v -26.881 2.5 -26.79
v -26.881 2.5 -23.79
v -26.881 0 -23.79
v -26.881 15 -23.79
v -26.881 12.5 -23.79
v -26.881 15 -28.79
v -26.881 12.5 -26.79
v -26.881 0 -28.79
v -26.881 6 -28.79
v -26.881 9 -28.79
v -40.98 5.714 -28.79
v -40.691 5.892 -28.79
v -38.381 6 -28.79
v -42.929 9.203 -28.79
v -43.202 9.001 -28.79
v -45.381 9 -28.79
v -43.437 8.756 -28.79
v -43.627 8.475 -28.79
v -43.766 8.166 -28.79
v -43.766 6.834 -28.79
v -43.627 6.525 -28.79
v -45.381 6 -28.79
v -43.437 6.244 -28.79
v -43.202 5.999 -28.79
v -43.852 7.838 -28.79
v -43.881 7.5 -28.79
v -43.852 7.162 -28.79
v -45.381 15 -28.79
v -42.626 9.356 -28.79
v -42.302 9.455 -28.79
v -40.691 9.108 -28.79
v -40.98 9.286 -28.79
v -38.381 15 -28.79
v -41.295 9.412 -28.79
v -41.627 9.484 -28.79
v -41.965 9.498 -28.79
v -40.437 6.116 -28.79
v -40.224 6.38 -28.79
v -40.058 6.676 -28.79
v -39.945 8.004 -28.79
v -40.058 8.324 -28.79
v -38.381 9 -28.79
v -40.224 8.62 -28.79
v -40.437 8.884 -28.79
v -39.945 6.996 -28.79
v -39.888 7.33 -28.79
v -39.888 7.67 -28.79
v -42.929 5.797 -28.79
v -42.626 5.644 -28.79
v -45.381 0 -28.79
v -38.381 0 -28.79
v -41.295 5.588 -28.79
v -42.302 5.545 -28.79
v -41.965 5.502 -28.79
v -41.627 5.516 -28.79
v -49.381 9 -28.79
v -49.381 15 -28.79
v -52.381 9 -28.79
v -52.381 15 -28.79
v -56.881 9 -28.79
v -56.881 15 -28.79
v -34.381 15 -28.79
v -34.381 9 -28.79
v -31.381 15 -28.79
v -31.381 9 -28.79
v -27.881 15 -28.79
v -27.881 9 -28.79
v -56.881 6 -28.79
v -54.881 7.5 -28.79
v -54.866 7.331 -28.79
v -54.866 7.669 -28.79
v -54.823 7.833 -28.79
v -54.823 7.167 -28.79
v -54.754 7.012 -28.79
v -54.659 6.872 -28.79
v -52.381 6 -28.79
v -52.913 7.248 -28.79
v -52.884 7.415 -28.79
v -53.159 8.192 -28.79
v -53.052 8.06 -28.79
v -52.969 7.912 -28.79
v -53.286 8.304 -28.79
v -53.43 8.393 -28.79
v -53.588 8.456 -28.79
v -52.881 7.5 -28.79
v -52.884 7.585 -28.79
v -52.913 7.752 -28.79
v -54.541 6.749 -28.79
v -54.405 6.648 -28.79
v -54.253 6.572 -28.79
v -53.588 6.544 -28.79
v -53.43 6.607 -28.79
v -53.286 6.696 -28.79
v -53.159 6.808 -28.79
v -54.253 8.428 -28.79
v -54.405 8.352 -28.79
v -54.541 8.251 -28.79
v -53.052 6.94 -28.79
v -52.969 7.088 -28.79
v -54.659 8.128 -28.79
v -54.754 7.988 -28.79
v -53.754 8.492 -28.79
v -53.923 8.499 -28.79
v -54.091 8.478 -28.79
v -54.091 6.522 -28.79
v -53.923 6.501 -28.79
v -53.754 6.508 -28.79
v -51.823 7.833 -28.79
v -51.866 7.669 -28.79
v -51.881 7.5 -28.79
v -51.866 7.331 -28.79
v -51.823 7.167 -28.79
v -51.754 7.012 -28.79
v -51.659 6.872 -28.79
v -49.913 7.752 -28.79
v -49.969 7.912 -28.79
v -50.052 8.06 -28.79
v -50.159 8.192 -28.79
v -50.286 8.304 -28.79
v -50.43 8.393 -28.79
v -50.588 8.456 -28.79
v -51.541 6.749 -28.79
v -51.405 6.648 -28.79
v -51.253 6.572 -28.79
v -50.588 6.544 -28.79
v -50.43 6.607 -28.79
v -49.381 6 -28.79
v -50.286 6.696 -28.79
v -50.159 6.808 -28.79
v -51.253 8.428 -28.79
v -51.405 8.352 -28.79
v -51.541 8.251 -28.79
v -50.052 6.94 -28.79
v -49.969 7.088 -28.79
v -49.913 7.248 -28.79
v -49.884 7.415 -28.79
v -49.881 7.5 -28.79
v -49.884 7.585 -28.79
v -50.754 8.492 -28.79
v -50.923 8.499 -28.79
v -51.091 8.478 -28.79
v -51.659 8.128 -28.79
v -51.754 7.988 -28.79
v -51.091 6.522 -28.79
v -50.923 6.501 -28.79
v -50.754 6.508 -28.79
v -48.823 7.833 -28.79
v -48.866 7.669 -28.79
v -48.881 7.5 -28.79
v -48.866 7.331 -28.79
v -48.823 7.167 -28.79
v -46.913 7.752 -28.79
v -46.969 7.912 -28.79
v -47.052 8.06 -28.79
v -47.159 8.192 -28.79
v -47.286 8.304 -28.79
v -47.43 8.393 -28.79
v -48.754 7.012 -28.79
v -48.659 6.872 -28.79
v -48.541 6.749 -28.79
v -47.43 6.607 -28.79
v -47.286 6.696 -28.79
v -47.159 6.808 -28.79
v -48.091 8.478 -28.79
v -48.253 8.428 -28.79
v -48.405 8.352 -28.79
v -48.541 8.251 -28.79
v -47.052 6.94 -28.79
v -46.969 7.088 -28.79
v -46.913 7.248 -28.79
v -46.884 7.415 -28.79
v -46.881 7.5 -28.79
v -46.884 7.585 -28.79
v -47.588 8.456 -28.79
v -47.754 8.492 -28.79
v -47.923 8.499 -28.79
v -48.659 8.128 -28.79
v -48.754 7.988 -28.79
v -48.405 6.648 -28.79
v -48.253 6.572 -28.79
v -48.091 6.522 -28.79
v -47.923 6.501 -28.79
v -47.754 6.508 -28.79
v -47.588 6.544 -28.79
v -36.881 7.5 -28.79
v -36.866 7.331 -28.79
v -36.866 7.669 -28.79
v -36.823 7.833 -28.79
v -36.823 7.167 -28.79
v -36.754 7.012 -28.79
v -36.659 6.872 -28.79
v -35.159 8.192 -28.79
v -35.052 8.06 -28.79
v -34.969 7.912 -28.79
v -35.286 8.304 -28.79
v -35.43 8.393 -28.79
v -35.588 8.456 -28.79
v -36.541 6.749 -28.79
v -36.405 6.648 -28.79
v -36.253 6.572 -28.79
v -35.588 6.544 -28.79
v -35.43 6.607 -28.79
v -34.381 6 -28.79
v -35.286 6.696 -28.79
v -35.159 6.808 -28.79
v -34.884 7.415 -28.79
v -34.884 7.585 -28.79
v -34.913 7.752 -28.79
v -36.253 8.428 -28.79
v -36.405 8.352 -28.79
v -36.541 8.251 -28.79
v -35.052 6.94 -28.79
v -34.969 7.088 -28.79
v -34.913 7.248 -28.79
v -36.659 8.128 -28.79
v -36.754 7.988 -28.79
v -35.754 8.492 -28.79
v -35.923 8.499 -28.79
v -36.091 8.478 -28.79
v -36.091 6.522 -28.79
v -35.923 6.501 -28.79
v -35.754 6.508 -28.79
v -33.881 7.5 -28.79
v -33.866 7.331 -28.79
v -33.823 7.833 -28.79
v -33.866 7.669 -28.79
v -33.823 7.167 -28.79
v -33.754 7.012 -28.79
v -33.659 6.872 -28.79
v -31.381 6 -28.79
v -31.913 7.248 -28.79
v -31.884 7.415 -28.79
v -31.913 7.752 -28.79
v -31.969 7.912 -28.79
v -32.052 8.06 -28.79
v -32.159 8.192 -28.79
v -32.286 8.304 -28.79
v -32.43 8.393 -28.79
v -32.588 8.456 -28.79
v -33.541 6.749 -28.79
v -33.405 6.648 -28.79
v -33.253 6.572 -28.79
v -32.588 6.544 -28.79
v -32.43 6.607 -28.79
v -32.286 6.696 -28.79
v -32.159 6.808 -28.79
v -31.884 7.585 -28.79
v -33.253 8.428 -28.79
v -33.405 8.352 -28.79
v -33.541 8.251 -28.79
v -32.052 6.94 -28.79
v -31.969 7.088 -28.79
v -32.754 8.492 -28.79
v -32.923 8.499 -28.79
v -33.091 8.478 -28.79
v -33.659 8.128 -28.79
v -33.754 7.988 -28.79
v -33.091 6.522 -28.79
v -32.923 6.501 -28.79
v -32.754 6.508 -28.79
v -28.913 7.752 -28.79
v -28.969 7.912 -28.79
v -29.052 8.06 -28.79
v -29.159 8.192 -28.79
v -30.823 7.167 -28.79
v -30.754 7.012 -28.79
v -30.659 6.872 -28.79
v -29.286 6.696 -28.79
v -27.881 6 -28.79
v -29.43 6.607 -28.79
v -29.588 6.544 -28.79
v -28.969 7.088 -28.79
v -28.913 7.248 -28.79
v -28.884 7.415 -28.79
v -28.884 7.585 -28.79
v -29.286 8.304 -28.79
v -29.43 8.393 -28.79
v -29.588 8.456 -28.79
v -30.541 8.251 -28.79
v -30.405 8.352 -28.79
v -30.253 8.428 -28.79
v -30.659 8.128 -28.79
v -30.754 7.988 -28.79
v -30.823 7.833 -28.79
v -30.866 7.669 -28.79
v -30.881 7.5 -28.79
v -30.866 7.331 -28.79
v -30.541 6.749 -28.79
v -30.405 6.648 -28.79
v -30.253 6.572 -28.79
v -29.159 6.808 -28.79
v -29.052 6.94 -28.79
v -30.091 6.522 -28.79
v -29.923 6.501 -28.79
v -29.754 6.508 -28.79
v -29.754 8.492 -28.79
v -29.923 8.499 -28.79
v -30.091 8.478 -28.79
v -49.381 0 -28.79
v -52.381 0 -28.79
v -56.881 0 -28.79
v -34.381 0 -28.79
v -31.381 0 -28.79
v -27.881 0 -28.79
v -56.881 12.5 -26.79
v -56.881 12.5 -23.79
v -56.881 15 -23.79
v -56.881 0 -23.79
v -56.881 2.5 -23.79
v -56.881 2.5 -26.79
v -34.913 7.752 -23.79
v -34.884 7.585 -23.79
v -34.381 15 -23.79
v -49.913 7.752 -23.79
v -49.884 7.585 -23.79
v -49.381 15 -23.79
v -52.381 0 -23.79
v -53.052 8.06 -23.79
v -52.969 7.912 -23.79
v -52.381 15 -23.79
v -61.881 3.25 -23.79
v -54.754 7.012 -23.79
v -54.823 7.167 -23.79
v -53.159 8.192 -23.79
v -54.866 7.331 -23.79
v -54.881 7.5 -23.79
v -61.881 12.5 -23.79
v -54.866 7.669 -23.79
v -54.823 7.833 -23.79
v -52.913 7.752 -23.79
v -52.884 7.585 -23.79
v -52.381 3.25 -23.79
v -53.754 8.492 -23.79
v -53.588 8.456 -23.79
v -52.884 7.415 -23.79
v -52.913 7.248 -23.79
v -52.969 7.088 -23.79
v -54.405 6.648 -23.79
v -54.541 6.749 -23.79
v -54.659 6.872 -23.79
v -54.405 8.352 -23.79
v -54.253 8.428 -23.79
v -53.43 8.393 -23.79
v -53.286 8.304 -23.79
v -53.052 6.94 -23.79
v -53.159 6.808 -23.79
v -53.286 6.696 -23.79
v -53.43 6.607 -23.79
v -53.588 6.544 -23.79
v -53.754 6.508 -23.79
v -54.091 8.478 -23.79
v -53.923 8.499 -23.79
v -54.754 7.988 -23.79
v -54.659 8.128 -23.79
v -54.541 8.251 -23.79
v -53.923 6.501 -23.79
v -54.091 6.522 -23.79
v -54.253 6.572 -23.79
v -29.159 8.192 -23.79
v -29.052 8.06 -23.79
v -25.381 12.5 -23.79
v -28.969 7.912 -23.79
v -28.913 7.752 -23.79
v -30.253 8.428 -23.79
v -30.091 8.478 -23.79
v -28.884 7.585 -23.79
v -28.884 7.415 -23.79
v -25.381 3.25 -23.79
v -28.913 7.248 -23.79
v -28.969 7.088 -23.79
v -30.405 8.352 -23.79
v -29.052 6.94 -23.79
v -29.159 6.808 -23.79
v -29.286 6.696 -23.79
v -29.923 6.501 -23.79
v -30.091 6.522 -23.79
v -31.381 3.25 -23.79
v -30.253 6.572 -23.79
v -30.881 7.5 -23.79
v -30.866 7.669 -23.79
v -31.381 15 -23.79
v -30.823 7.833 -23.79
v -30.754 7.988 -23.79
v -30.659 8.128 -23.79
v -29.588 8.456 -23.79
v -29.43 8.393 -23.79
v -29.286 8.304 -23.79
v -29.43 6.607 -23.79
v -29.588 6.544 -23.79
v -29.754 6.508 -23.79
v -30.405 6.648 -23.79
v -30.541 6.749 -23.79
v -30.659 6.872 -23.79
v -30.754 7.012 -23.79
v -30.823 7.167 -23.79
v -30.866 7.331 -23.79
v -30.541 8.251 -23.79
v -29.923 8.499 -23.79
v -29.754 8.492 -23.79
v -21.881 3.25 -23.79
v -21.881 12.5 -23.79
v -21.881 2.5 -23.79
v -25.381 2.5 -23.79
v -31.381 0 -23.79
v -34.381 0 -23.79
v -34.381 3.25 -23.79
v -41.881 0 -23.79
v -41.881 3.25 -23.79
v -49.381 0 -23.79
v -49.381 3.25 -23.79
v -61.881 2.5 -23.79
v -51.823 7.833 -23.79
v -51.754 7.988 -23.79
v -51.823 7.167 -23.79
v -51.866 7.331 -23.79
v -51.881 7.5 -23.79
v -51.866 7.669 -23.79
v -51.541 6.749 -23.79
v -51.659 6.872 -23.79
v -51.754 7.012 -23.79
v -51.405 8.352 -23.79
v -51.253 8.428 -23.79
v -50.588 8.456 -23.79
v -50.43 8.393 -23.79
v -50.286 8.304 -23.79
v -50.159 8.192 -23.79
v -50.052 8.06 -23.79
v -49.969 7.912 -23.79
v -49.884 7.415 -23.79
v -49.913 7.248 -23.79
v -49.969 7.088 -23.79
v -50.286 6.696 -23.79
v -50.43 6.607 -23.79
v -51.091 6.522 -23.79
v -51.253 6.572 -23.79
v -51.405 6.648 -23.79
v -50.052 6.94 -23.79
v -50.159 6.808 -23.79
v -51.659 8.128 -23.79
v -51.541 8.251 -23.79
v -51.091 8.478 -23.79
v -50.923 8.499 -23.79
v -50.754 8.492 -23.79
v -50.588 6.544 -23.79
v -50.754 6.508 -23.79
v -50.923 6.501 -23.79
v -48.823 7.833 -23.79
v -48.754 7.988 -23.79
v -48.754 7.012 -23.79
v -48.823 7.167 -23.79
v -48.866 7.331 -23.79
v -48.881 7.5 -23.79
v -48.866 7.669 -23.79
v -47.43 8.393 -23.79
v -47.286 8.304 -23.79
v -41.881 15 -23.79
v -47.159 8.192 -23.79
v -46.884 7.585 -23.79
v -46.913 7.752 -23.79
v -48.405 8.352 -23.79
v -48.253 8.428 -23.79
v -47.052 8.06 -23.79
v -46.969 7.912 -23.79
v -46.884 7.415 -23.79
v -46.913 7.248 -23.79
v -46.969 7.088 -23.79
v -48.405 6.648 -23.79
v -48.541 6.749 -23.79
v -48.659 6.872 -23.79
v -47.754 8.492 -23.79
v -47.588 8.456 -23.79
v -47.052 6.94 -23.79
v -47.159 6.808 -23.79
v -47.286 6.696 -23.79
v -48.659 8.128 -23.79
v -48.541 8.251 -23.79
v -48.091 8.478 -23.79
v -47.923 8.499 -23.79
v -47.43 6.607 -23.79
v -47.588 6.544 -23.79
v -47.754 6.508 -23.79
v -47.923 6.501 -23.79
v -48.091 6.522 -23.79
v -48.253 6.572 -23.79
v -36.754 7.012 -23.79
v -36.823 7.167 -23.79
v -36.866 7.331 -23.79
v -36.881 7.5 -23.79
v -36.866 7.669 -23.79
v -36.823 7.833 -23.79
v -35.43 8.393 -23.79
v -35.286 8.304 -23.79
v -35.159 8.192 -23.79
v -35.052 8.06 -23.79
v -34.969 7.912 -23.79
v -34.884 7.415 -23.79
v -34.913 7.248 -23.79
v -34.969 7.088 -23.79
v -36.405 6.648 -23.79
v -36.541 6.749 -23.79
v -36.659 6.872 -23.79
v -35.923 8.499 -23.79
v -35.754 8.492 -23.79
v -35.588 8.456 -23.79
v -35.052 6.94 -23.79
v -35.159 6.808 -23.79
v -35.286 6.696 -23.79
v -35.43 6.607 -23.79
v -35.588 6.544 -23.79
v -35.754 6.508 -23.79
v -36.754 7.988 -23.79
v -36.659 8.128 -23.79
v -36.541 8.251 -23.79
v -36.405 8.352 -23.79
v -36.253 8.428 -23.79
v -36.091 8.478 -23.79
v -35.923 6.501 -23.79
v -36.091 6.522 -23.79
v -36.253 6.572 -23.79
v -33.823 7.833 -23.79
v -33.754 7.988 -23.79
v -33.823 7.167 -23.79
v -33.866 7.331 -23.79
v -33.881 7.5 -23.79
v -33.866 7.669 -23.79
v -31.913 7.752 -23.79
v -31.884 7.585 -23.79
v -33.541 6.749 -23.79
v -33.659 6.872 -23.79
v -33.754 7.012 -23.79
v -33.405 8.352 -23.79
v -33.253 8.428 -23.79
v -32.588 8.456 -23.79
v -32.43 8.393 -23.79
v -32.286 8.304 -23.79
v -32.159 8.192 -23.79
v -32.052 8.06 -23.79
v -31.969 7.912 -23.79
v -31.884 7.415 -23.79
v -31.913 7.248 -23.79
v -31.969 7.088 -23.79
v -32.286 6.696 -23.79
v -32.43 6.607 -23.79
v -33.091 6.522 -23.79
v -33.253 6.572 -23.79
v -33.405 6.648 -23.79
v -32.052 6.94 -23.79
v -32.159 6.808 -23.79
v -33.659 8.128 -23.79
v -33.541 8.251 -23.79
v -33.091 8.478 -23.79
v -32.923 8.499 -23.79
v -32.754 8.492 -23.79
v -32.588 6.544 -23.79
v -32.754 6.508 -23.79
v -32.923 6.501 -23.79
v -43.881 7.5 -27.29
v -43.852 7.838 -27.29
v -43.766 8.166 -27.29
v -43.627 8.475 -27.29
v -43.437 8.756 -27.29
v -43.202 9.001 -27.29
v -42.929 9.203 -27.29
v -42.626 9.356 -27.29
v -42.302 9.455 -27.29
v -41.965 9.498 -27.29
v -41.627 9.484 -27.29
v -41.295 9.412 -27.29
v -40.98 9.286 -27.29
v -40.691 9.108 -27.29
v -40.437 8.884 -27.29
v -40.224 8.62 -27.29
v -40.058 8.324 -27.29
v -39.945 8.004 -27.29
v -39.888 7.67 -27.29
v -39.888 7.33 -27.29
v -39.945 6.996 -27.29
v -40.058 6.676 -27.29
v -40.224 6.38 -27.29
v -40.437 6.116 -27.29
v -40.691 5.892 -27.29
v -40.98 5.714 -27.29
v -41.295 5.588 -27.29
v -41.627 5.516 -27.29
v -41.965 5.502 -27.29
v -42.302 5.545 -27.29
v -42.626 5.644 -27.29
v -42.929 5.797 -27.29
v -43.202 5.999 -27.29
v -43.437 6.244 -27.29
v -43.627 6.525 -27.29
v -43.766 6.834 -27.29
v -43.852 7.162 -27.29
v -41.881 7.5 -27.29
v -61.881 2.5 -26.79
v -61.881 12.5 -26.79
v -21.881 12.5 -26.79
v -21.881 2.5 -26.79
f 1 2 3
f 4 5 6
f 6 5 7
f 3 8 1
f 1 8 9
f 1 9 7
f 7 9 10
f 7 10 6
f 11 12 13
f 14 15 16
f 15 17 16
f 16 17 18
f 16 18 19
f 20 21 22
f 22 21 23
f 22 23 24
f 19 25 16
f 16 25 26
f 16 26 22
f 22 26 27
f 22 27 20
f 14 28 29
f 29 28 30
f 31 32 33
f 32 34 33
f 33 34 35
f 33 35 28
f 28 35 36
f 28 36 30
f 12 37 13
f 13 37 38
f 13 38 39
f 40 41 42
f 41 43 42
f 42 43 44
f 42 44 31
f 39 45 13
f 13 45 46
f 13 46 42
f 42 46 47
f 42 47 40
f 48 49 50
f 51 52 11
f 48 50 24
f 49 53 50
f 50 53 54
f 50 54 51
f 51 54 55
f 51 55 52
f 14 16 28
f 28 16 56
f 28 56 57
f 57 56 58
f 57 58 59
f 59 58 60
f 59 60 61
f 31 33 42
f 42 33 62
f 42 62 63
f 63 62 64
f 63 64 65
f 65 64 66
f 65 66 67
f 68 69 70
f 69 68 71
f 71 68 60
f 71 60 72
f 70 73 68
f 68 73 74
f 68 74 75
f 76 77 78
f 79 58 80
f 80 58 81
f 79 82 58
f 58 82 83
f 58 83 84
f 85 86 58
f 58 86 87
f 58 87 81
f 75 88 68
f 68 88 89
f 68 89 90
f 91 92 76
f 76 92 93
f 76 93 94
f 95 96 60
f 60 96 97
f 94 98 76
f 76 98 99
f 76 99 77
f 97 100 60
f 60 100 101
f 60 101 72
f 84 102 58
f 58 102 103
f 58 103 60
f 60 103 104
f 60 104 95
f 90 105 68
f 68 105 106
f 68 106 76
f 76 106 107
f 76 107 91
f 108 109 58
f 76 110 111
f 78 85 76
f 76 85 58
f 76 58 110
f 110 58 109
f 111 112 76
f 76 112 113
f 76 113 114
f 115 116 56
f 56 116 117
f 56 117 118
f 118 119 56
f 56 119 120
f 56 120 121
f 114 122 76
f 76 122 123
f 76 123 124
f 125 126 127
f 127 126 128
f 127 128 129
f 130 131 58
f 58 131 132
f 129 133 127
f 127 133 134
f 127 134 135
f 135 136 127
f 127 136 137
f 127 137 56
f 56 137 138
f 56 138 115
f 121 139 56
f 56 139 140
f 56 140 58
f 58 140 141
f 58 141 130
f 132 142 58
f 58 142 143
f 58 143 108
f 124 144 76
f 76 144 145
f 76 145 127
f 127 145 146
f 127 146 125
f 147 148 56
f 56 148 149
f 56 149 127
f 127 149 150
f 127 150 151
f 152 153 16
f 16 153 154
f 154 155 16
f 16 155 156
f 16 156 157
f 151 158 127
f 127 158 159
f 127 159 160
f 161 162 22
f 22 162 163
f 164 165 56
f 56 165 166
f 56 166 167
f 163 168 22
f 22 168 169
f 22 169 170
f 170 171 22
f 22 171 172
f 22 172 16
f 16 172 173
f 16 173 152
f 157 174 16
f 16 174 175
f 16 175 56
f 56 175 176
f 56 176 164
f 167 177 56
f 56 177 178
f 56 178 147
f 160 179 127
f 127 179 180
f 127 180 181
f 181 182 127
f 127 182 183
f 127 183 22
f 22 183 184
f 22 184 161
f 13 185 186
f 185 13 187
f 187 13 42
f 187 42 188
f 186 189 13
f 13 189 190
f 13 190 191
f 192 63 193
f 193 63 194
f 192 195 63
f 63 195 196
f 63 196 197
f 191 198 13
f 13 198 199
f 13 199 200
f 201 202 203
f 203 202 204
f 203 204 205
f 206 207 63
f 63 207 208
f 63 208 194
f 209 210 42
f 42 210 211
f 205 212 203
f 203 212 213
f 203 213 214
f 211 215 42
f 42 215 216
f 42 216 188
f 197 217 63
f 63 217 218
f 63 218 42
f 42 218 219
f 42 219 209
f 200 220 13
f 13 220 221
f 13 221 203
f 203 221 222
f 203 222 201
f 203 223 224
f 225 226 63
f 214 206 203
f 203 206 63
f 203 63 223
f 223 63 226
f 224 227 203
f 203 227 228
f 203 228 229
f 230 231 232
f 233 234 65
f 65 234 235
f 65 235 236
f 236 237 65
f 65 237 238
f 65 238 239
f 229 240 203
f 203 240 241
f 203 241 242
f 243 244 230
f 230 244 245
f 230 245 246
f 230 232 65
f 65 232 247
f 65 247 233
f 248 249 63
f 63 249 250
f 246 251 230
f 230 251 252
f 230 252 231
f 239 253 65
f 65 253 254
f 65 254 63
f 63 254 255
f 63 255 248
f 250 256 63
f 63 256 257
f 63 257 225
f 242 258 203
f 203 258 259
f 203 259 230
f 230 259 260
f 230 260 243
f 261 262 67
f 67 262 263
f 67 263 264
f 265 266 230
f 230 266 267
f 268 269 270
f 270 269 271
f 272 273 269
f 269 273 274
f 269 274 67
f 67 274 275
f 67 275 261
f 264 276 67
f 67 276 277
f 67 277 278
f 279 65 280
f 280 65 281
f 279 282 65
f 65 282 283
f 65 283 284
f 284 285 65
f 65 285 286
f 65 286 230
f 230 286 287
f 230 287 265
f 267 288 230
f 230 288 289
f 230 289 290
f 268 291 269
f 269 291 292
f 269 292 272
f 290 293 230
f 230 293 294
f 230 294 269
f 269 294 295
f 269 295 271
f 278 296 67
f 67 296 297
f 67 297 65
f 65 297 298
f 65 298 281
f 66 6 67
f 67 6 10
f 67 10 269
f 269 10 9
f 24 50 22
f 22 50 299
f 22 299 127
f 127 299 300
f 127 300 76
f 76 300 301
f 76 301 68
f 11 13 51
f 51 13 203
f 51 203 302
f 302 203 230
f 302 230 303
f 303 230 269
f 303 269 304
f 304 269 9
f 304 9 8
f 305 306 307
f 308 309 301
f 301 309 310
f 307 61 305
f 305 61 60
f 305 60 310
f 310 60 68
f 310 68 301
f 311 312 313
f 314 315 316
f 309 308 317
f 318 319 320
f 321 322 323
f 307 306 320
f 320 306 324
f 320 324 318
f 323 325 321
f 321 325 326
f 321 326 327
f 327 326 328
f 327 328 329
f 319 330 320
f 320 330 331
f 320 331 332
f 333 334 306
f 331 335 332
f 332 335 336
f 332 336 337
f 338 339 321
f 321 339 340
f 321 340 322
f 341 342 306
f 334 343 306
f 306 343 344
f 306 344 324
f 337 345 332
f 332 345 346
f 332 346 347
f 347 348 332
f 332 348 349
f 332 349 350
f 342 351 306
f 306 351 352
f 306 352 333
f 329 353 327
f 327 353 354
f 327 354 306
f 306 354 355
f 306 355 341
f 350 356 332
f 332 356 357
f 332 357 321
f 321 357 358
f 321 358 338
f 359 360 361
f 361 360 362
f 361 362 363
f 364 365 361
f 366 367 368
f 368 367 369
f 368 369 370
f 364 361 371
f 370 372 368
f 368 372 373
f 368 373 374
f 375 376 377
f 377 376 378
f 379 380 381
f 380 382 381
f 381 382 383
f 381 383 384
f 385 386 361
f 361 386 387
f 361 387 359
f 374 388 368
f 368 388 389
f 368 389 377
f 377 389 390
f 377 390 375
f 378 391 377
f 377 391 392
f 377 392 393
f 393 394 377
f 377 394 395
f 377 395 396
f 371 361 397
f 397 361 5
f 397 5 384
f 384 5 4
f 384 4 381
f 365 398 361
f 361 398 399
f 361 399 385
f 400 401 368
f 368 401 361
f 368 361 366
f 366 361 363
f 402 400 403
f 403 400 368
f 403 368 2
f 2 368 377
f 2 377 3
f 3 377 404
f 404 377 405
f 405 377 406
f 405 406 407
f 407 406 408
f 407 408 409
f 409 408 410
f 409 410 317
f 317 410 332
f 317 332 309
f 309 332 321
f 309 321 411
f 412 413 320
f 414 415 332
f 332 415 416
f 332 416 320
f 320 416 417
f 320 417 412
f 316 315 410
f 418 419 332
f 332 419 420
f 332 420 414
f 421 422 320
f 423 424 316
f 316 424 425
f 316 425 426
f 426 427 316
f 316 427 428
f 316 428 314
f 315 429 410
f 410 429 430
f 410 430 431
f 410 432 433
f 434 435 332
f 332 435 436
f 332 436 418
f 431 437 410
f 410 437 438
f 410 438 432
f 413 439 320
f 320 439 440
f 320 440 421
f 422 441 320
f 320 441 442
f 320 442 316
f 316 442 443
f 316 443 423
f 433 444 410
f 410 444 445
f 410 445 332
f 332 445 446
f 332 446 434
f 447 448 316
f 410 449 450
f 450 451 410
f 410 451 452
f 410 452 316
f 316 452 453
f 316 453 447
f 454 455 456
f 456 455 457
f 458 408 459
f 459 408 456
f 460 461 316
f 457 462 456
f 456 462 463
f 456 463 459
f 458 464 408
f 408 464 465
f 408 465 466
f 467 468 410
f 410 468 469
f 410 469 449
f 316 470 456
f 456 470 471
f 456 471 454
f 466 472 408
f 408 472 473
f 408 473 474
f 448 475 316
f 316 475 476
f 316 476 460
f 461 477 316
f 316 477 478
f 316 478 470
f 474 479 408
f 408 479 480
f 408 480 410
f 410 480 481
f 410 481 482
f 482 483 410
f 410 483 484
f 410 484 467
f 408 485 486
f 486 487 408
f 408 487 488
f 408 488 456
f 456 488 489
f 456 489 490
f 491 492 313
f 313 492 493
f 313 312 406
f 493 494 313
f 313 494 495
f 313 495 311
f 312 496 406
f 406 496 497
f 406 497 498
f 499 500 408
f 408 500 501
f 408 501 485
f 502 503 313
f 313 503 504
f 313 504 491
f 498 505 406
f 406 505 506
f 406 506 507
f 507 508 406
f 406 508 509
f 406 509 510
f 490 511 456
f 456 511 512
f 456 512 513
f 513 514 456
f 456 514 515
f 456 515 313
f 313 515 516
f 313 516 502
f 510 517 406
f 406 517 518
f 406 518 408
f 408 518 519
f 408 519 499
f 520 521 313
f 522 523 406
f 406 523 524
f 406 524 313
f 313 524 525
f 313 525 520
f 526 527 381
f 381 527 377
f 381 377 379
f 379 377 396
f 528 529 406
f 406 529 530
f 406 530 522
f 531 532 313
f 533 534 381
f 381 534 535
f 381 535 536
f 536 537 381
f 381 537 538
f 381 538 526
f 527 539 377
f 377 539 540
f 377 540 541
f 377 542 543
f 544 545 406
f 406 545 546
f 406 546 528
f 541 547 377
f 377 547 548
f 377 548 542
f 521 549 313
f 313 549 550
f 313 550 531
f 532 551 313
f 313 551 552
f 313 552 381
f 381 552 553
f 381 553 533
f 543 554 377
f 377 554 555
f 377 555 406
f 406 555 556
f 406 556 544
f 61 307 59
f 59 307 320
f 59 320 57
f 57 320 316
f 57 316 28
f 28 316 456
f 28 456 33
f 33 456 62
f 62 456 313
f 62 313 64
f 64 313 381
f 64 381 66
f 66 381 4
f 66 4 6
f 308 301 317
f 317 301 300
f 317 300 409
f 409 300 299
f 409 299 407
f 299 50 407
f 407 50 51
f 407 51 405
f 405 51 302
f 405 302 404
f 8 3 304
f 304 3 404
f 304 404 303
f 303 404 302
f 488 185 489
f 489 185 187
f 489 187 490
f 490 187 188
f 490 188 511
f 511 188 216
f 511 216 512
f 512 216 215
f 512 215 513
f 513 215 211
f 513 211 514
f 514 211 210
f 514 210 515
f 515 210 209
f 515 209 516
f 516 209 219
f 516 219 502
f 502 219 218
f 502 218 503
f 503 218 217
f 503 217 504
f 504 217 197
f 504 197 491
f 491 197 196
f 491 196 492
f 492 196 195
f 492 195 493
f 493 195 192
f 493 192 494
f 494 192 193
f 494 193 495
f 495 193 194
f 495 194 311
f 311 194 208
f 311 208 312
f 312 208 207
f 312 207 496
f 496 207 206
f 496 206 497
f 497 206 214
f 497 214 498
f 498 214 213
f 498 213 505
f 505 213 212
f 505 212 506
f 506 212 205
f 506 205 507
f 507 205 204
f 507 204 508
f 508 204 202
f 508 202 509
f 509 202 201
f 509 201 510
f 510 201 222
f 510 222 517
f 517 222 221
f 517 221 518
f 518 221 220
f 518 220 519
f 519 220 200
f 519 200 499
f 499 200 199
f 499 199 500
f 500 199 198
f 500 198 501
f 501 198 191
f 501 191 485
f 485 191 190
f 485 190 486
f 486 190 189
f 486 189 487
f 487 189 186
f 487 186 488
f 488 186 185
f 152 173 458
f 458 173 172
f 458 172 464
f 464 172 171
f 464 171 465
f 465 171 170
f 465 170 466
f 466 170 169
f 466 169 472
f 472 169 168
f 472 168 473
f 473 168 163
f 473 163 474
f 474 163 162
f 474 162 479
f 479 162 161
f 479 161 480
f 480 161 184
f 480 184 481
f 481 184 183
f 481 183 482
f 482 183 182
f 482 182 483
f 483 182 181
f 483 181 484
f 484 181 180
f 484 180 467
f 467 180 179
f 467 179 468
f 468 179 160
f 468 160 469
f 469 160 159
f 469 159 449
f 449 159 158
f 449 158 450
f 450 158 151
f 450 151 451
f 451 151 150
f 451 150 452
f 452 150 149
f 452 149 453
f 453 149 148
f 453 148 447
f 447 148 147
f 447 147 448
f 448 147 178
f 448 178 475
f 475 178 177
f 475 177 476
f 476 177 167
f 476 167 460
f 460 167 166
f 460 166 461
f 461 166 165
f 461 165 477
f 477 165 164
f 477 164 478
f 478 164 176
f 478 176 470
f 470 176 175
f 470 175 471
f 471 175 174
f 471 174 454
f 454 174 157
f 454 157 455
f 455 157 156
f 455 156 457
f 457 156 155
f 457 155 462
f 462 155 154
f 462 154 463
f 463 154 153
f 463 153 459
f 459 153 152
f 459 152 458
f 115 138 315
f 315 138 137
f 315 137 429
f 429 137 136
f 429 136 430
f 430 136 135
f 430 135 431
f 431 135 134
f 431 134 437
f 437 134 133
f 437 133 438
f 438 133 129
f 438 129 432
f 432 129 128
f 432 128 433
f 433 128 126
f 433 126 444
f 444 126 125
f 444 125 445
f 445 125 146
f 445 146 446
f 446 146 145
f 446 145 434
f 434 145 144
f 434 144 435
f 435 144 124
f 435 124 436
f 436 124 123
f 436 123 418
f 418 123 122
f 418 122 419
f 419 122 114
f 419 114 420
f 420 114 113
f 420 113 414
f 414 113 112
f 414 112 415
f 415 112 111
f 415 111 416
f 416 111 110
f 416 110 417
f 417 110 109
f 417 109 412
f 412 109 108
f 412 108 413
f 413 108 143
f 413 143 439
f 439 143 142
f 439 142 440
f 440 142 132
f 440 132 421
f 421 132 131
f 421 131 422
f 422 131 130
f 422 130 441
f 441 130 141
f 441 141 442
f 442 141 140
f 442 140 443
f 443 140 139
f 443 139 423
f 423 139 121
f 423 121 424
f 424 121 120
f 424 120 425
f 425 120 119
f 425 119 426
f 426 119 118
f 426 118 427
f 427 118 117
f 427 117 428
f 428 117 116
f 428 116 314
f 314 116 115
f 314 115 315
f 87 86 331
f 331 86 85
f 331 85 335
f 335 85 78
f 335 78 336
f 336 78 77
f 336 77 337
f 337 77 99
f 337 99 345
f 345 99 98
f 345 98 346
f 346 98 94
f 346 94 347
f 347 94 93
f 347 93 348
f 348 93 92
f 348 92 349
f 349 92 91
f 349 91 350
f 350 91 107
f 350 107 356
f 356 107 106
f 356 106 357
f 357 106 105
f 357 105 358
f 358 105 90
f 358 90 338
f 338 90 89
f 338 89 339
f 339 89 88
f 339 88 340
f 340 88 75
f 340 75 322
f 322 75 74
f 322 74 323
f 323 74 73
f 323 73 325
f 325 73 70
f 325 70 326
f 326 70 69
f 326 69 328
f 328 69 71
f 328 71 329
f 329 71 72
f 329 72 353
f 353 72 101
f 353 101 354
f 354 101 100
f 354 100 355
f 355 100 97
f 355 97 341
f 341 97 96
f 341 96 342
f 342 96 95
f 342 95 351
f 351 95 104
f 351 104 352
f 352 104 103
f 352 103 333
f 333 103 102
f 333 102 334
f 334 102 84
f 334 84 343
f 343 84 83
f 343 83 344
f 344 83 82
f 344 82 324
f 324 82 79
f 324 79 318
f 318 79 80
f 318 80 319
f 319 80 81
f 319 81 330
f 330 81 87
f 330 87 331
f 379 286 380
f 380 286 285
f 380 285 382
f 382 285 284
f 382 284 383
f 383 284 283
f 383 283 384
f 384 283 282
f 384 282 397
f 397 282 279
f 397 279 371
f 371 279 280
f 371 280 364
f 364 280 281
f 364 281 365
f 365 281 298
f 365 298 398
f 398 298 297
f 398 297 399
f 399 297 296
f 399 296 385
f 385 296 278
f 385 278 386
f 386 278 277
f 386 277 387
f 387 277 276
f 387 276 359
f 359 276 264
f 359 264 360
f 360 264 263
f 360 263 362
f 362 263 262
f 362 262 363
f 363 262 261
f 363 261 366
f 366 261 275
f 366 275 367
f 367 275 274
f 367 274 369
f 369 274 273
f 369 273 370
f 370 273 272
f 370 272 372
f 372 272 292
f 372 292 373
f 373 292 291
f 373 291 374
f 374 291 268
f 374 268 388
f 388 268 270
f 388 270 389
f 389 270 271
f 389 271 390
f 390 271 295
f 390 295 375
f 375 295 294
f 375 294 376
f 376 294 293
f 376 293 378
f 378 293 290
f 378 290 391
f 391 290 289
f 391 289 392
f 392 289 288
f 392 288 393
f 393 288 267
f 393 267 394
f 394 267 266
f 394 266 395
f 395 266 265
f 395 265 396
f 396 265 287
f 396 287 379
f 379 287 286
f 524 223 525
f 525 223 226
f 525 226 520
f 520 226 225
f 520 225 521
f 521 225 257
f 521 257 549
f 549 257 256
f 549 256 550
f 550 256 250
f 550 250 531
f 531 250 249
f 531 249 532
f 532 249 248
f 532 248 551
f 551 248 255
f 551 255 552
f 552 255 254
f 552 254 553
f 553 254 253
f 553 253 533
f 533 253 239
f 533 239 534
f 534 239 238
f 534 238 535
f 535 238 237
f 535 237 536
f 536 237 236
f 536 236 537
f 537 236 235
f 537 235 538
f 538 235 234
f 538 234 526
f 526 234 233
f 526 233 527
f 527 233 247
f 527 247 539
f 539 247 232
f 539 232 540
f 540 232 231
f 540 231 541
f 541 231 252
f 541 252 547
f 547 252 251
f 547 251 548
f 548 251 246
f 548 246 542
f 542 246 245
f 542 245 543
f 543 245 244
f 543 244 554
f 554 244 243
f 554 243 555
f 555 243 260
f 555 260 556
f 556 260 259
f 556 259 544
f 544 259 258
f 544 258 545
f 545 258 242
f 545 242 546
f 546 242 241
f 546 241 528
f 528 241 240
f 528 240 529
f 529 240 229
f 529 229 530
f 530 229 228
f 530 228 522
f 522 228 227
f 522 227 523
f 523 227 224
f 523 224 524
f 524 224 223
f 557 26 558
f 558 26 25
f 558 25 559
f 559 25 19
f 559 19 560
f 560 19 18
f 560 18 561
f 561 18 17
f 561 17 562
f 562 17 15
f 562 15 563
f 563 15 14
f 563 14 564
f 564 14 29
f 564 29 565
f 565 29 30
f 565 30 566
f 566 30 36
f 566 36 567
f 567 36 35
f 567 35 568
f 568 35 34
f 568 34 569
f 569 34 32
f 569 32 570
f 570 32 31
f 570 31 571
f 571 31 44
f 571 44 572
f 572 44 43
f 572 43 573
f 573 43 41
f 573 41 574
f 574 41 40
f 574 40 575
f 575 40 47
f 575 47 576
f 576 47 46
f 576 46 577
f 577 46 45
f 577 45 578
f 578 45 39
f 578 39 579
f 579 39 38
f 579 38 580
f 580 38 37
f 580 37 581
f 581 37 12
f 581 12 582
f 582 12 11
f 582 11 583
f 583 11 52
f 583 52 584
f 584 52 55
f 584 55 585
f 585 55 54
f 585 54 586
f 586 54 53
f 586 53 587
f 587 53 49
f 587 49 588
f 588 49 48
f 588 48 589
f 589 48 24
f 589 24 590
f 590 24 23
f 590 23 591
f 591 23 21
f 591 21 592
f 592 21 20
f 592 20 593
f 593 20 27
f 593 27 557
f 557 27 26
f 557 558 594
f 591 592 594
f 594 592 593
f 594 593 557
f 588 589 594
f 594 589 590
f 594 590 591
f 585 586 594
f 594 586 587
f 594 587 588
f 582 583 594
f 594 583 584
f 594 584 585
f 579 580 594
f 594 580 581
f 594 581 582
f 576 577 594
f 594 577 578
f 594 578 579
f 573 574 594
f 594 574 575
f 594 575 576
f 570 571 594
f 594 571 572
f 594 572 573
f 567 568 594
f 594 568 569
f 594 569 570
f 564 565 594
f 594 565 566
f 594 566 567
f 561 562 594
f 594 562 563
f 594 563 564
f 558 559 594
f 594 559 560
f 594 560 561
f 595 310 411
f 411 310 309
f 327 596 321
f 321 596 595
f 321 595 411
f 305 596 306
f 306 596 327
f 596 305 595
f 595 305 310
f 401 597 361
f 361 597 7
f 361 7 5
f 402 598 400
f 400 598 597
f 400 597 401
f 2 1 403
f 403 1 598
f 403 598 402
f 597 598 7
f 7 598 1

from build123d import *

# Parameters (mm, degrees)
SKETCH1_W           = 30
SKETCH1_H           = 5
BOSS_EXTRUDE1_DEPTH = 15
SKETCH3_R           = 1
CUT_EXTRUDE2_DEPTH  = 5
SKETCH4_R           = 2
CUT_EXTRUDE3_DEPTH  = 1.5
SKETCH5_W           = 5
SKETCH5_H           = 10
BOSS_EXTRUDE2_DEPTH = 3


with BuildPart() as part:
    # Sketch1 → Boss-Extrude1 (new body)
    with BuildSketch(Plane(origin=(0, 0, 0), x_dir=(1, 0, 0), z_dir=(0, 1, 0))):
        with Locations((-41.880536913, 26.290268456)):
            Rectangle(SKETCH1_W, SKETCH1_H)
    extrude(amount=BOSS_EXTRUDE1_DEPTH)

    # Sketch3 → Cut-Extrude2 (cut)
    with BuildSketch(Plane(origin=(0, 0, -28.790268456), x_dir=(-1, 0, 0), z_dir=(0, 0, -1))):
        with Locations((35.880536913, 7.5)):
            Circle(SKETCH3_R)
        with Locations((32.880536913, 7.5)):
            Circle(SKETCH3_R)
        with Locations((29.880536913, 7.5)):
            Circle(SKETCH3_R)
        with Locations((53.880536913, 7.5)):
            Circle(SKETCH3_R)
        with Locations((50.880536913, 7.5)):
            Circle(SKETCH3_R)
        with Locations((47.880536913, 7.5)):
            Circle(SKETCH3_R)
    extrude(amount=-CUT_EXTRUDE2_DEPTH, mode=Mode.SUBTRACT)

    # Sketch4 → Cut-Extrude3 (cut)
    with BuildSketch(Plane(origin=(0, 0, -28.790268456), x_dir=(-1, 0, 0), z_dir=(0, 0, -1))):
        with Locations((41.880536913, 7.5)):
            Circle(SKETCH4_R)
    extrude(amount=-CUT_EXTRUDE3_DEPTH, mode=Mode.SUBTRACT)

    # Sketch5 → Boss-Extrude2 (add)
    with BuildSketch(Plane.XY.offset(-23.790268456)):
        with Locations((-59.380536913, 7.5)):
            Rectangle(SKETCH5_W, SKETCH5_H)
        with Locations((-24.380536913, 7.5)):
            Rectangle(SKETCH5_W, SKETCH5_H)
    extrude(amount=-BOSS_EXTRUDE2_DEPTH)


solid = part.part
